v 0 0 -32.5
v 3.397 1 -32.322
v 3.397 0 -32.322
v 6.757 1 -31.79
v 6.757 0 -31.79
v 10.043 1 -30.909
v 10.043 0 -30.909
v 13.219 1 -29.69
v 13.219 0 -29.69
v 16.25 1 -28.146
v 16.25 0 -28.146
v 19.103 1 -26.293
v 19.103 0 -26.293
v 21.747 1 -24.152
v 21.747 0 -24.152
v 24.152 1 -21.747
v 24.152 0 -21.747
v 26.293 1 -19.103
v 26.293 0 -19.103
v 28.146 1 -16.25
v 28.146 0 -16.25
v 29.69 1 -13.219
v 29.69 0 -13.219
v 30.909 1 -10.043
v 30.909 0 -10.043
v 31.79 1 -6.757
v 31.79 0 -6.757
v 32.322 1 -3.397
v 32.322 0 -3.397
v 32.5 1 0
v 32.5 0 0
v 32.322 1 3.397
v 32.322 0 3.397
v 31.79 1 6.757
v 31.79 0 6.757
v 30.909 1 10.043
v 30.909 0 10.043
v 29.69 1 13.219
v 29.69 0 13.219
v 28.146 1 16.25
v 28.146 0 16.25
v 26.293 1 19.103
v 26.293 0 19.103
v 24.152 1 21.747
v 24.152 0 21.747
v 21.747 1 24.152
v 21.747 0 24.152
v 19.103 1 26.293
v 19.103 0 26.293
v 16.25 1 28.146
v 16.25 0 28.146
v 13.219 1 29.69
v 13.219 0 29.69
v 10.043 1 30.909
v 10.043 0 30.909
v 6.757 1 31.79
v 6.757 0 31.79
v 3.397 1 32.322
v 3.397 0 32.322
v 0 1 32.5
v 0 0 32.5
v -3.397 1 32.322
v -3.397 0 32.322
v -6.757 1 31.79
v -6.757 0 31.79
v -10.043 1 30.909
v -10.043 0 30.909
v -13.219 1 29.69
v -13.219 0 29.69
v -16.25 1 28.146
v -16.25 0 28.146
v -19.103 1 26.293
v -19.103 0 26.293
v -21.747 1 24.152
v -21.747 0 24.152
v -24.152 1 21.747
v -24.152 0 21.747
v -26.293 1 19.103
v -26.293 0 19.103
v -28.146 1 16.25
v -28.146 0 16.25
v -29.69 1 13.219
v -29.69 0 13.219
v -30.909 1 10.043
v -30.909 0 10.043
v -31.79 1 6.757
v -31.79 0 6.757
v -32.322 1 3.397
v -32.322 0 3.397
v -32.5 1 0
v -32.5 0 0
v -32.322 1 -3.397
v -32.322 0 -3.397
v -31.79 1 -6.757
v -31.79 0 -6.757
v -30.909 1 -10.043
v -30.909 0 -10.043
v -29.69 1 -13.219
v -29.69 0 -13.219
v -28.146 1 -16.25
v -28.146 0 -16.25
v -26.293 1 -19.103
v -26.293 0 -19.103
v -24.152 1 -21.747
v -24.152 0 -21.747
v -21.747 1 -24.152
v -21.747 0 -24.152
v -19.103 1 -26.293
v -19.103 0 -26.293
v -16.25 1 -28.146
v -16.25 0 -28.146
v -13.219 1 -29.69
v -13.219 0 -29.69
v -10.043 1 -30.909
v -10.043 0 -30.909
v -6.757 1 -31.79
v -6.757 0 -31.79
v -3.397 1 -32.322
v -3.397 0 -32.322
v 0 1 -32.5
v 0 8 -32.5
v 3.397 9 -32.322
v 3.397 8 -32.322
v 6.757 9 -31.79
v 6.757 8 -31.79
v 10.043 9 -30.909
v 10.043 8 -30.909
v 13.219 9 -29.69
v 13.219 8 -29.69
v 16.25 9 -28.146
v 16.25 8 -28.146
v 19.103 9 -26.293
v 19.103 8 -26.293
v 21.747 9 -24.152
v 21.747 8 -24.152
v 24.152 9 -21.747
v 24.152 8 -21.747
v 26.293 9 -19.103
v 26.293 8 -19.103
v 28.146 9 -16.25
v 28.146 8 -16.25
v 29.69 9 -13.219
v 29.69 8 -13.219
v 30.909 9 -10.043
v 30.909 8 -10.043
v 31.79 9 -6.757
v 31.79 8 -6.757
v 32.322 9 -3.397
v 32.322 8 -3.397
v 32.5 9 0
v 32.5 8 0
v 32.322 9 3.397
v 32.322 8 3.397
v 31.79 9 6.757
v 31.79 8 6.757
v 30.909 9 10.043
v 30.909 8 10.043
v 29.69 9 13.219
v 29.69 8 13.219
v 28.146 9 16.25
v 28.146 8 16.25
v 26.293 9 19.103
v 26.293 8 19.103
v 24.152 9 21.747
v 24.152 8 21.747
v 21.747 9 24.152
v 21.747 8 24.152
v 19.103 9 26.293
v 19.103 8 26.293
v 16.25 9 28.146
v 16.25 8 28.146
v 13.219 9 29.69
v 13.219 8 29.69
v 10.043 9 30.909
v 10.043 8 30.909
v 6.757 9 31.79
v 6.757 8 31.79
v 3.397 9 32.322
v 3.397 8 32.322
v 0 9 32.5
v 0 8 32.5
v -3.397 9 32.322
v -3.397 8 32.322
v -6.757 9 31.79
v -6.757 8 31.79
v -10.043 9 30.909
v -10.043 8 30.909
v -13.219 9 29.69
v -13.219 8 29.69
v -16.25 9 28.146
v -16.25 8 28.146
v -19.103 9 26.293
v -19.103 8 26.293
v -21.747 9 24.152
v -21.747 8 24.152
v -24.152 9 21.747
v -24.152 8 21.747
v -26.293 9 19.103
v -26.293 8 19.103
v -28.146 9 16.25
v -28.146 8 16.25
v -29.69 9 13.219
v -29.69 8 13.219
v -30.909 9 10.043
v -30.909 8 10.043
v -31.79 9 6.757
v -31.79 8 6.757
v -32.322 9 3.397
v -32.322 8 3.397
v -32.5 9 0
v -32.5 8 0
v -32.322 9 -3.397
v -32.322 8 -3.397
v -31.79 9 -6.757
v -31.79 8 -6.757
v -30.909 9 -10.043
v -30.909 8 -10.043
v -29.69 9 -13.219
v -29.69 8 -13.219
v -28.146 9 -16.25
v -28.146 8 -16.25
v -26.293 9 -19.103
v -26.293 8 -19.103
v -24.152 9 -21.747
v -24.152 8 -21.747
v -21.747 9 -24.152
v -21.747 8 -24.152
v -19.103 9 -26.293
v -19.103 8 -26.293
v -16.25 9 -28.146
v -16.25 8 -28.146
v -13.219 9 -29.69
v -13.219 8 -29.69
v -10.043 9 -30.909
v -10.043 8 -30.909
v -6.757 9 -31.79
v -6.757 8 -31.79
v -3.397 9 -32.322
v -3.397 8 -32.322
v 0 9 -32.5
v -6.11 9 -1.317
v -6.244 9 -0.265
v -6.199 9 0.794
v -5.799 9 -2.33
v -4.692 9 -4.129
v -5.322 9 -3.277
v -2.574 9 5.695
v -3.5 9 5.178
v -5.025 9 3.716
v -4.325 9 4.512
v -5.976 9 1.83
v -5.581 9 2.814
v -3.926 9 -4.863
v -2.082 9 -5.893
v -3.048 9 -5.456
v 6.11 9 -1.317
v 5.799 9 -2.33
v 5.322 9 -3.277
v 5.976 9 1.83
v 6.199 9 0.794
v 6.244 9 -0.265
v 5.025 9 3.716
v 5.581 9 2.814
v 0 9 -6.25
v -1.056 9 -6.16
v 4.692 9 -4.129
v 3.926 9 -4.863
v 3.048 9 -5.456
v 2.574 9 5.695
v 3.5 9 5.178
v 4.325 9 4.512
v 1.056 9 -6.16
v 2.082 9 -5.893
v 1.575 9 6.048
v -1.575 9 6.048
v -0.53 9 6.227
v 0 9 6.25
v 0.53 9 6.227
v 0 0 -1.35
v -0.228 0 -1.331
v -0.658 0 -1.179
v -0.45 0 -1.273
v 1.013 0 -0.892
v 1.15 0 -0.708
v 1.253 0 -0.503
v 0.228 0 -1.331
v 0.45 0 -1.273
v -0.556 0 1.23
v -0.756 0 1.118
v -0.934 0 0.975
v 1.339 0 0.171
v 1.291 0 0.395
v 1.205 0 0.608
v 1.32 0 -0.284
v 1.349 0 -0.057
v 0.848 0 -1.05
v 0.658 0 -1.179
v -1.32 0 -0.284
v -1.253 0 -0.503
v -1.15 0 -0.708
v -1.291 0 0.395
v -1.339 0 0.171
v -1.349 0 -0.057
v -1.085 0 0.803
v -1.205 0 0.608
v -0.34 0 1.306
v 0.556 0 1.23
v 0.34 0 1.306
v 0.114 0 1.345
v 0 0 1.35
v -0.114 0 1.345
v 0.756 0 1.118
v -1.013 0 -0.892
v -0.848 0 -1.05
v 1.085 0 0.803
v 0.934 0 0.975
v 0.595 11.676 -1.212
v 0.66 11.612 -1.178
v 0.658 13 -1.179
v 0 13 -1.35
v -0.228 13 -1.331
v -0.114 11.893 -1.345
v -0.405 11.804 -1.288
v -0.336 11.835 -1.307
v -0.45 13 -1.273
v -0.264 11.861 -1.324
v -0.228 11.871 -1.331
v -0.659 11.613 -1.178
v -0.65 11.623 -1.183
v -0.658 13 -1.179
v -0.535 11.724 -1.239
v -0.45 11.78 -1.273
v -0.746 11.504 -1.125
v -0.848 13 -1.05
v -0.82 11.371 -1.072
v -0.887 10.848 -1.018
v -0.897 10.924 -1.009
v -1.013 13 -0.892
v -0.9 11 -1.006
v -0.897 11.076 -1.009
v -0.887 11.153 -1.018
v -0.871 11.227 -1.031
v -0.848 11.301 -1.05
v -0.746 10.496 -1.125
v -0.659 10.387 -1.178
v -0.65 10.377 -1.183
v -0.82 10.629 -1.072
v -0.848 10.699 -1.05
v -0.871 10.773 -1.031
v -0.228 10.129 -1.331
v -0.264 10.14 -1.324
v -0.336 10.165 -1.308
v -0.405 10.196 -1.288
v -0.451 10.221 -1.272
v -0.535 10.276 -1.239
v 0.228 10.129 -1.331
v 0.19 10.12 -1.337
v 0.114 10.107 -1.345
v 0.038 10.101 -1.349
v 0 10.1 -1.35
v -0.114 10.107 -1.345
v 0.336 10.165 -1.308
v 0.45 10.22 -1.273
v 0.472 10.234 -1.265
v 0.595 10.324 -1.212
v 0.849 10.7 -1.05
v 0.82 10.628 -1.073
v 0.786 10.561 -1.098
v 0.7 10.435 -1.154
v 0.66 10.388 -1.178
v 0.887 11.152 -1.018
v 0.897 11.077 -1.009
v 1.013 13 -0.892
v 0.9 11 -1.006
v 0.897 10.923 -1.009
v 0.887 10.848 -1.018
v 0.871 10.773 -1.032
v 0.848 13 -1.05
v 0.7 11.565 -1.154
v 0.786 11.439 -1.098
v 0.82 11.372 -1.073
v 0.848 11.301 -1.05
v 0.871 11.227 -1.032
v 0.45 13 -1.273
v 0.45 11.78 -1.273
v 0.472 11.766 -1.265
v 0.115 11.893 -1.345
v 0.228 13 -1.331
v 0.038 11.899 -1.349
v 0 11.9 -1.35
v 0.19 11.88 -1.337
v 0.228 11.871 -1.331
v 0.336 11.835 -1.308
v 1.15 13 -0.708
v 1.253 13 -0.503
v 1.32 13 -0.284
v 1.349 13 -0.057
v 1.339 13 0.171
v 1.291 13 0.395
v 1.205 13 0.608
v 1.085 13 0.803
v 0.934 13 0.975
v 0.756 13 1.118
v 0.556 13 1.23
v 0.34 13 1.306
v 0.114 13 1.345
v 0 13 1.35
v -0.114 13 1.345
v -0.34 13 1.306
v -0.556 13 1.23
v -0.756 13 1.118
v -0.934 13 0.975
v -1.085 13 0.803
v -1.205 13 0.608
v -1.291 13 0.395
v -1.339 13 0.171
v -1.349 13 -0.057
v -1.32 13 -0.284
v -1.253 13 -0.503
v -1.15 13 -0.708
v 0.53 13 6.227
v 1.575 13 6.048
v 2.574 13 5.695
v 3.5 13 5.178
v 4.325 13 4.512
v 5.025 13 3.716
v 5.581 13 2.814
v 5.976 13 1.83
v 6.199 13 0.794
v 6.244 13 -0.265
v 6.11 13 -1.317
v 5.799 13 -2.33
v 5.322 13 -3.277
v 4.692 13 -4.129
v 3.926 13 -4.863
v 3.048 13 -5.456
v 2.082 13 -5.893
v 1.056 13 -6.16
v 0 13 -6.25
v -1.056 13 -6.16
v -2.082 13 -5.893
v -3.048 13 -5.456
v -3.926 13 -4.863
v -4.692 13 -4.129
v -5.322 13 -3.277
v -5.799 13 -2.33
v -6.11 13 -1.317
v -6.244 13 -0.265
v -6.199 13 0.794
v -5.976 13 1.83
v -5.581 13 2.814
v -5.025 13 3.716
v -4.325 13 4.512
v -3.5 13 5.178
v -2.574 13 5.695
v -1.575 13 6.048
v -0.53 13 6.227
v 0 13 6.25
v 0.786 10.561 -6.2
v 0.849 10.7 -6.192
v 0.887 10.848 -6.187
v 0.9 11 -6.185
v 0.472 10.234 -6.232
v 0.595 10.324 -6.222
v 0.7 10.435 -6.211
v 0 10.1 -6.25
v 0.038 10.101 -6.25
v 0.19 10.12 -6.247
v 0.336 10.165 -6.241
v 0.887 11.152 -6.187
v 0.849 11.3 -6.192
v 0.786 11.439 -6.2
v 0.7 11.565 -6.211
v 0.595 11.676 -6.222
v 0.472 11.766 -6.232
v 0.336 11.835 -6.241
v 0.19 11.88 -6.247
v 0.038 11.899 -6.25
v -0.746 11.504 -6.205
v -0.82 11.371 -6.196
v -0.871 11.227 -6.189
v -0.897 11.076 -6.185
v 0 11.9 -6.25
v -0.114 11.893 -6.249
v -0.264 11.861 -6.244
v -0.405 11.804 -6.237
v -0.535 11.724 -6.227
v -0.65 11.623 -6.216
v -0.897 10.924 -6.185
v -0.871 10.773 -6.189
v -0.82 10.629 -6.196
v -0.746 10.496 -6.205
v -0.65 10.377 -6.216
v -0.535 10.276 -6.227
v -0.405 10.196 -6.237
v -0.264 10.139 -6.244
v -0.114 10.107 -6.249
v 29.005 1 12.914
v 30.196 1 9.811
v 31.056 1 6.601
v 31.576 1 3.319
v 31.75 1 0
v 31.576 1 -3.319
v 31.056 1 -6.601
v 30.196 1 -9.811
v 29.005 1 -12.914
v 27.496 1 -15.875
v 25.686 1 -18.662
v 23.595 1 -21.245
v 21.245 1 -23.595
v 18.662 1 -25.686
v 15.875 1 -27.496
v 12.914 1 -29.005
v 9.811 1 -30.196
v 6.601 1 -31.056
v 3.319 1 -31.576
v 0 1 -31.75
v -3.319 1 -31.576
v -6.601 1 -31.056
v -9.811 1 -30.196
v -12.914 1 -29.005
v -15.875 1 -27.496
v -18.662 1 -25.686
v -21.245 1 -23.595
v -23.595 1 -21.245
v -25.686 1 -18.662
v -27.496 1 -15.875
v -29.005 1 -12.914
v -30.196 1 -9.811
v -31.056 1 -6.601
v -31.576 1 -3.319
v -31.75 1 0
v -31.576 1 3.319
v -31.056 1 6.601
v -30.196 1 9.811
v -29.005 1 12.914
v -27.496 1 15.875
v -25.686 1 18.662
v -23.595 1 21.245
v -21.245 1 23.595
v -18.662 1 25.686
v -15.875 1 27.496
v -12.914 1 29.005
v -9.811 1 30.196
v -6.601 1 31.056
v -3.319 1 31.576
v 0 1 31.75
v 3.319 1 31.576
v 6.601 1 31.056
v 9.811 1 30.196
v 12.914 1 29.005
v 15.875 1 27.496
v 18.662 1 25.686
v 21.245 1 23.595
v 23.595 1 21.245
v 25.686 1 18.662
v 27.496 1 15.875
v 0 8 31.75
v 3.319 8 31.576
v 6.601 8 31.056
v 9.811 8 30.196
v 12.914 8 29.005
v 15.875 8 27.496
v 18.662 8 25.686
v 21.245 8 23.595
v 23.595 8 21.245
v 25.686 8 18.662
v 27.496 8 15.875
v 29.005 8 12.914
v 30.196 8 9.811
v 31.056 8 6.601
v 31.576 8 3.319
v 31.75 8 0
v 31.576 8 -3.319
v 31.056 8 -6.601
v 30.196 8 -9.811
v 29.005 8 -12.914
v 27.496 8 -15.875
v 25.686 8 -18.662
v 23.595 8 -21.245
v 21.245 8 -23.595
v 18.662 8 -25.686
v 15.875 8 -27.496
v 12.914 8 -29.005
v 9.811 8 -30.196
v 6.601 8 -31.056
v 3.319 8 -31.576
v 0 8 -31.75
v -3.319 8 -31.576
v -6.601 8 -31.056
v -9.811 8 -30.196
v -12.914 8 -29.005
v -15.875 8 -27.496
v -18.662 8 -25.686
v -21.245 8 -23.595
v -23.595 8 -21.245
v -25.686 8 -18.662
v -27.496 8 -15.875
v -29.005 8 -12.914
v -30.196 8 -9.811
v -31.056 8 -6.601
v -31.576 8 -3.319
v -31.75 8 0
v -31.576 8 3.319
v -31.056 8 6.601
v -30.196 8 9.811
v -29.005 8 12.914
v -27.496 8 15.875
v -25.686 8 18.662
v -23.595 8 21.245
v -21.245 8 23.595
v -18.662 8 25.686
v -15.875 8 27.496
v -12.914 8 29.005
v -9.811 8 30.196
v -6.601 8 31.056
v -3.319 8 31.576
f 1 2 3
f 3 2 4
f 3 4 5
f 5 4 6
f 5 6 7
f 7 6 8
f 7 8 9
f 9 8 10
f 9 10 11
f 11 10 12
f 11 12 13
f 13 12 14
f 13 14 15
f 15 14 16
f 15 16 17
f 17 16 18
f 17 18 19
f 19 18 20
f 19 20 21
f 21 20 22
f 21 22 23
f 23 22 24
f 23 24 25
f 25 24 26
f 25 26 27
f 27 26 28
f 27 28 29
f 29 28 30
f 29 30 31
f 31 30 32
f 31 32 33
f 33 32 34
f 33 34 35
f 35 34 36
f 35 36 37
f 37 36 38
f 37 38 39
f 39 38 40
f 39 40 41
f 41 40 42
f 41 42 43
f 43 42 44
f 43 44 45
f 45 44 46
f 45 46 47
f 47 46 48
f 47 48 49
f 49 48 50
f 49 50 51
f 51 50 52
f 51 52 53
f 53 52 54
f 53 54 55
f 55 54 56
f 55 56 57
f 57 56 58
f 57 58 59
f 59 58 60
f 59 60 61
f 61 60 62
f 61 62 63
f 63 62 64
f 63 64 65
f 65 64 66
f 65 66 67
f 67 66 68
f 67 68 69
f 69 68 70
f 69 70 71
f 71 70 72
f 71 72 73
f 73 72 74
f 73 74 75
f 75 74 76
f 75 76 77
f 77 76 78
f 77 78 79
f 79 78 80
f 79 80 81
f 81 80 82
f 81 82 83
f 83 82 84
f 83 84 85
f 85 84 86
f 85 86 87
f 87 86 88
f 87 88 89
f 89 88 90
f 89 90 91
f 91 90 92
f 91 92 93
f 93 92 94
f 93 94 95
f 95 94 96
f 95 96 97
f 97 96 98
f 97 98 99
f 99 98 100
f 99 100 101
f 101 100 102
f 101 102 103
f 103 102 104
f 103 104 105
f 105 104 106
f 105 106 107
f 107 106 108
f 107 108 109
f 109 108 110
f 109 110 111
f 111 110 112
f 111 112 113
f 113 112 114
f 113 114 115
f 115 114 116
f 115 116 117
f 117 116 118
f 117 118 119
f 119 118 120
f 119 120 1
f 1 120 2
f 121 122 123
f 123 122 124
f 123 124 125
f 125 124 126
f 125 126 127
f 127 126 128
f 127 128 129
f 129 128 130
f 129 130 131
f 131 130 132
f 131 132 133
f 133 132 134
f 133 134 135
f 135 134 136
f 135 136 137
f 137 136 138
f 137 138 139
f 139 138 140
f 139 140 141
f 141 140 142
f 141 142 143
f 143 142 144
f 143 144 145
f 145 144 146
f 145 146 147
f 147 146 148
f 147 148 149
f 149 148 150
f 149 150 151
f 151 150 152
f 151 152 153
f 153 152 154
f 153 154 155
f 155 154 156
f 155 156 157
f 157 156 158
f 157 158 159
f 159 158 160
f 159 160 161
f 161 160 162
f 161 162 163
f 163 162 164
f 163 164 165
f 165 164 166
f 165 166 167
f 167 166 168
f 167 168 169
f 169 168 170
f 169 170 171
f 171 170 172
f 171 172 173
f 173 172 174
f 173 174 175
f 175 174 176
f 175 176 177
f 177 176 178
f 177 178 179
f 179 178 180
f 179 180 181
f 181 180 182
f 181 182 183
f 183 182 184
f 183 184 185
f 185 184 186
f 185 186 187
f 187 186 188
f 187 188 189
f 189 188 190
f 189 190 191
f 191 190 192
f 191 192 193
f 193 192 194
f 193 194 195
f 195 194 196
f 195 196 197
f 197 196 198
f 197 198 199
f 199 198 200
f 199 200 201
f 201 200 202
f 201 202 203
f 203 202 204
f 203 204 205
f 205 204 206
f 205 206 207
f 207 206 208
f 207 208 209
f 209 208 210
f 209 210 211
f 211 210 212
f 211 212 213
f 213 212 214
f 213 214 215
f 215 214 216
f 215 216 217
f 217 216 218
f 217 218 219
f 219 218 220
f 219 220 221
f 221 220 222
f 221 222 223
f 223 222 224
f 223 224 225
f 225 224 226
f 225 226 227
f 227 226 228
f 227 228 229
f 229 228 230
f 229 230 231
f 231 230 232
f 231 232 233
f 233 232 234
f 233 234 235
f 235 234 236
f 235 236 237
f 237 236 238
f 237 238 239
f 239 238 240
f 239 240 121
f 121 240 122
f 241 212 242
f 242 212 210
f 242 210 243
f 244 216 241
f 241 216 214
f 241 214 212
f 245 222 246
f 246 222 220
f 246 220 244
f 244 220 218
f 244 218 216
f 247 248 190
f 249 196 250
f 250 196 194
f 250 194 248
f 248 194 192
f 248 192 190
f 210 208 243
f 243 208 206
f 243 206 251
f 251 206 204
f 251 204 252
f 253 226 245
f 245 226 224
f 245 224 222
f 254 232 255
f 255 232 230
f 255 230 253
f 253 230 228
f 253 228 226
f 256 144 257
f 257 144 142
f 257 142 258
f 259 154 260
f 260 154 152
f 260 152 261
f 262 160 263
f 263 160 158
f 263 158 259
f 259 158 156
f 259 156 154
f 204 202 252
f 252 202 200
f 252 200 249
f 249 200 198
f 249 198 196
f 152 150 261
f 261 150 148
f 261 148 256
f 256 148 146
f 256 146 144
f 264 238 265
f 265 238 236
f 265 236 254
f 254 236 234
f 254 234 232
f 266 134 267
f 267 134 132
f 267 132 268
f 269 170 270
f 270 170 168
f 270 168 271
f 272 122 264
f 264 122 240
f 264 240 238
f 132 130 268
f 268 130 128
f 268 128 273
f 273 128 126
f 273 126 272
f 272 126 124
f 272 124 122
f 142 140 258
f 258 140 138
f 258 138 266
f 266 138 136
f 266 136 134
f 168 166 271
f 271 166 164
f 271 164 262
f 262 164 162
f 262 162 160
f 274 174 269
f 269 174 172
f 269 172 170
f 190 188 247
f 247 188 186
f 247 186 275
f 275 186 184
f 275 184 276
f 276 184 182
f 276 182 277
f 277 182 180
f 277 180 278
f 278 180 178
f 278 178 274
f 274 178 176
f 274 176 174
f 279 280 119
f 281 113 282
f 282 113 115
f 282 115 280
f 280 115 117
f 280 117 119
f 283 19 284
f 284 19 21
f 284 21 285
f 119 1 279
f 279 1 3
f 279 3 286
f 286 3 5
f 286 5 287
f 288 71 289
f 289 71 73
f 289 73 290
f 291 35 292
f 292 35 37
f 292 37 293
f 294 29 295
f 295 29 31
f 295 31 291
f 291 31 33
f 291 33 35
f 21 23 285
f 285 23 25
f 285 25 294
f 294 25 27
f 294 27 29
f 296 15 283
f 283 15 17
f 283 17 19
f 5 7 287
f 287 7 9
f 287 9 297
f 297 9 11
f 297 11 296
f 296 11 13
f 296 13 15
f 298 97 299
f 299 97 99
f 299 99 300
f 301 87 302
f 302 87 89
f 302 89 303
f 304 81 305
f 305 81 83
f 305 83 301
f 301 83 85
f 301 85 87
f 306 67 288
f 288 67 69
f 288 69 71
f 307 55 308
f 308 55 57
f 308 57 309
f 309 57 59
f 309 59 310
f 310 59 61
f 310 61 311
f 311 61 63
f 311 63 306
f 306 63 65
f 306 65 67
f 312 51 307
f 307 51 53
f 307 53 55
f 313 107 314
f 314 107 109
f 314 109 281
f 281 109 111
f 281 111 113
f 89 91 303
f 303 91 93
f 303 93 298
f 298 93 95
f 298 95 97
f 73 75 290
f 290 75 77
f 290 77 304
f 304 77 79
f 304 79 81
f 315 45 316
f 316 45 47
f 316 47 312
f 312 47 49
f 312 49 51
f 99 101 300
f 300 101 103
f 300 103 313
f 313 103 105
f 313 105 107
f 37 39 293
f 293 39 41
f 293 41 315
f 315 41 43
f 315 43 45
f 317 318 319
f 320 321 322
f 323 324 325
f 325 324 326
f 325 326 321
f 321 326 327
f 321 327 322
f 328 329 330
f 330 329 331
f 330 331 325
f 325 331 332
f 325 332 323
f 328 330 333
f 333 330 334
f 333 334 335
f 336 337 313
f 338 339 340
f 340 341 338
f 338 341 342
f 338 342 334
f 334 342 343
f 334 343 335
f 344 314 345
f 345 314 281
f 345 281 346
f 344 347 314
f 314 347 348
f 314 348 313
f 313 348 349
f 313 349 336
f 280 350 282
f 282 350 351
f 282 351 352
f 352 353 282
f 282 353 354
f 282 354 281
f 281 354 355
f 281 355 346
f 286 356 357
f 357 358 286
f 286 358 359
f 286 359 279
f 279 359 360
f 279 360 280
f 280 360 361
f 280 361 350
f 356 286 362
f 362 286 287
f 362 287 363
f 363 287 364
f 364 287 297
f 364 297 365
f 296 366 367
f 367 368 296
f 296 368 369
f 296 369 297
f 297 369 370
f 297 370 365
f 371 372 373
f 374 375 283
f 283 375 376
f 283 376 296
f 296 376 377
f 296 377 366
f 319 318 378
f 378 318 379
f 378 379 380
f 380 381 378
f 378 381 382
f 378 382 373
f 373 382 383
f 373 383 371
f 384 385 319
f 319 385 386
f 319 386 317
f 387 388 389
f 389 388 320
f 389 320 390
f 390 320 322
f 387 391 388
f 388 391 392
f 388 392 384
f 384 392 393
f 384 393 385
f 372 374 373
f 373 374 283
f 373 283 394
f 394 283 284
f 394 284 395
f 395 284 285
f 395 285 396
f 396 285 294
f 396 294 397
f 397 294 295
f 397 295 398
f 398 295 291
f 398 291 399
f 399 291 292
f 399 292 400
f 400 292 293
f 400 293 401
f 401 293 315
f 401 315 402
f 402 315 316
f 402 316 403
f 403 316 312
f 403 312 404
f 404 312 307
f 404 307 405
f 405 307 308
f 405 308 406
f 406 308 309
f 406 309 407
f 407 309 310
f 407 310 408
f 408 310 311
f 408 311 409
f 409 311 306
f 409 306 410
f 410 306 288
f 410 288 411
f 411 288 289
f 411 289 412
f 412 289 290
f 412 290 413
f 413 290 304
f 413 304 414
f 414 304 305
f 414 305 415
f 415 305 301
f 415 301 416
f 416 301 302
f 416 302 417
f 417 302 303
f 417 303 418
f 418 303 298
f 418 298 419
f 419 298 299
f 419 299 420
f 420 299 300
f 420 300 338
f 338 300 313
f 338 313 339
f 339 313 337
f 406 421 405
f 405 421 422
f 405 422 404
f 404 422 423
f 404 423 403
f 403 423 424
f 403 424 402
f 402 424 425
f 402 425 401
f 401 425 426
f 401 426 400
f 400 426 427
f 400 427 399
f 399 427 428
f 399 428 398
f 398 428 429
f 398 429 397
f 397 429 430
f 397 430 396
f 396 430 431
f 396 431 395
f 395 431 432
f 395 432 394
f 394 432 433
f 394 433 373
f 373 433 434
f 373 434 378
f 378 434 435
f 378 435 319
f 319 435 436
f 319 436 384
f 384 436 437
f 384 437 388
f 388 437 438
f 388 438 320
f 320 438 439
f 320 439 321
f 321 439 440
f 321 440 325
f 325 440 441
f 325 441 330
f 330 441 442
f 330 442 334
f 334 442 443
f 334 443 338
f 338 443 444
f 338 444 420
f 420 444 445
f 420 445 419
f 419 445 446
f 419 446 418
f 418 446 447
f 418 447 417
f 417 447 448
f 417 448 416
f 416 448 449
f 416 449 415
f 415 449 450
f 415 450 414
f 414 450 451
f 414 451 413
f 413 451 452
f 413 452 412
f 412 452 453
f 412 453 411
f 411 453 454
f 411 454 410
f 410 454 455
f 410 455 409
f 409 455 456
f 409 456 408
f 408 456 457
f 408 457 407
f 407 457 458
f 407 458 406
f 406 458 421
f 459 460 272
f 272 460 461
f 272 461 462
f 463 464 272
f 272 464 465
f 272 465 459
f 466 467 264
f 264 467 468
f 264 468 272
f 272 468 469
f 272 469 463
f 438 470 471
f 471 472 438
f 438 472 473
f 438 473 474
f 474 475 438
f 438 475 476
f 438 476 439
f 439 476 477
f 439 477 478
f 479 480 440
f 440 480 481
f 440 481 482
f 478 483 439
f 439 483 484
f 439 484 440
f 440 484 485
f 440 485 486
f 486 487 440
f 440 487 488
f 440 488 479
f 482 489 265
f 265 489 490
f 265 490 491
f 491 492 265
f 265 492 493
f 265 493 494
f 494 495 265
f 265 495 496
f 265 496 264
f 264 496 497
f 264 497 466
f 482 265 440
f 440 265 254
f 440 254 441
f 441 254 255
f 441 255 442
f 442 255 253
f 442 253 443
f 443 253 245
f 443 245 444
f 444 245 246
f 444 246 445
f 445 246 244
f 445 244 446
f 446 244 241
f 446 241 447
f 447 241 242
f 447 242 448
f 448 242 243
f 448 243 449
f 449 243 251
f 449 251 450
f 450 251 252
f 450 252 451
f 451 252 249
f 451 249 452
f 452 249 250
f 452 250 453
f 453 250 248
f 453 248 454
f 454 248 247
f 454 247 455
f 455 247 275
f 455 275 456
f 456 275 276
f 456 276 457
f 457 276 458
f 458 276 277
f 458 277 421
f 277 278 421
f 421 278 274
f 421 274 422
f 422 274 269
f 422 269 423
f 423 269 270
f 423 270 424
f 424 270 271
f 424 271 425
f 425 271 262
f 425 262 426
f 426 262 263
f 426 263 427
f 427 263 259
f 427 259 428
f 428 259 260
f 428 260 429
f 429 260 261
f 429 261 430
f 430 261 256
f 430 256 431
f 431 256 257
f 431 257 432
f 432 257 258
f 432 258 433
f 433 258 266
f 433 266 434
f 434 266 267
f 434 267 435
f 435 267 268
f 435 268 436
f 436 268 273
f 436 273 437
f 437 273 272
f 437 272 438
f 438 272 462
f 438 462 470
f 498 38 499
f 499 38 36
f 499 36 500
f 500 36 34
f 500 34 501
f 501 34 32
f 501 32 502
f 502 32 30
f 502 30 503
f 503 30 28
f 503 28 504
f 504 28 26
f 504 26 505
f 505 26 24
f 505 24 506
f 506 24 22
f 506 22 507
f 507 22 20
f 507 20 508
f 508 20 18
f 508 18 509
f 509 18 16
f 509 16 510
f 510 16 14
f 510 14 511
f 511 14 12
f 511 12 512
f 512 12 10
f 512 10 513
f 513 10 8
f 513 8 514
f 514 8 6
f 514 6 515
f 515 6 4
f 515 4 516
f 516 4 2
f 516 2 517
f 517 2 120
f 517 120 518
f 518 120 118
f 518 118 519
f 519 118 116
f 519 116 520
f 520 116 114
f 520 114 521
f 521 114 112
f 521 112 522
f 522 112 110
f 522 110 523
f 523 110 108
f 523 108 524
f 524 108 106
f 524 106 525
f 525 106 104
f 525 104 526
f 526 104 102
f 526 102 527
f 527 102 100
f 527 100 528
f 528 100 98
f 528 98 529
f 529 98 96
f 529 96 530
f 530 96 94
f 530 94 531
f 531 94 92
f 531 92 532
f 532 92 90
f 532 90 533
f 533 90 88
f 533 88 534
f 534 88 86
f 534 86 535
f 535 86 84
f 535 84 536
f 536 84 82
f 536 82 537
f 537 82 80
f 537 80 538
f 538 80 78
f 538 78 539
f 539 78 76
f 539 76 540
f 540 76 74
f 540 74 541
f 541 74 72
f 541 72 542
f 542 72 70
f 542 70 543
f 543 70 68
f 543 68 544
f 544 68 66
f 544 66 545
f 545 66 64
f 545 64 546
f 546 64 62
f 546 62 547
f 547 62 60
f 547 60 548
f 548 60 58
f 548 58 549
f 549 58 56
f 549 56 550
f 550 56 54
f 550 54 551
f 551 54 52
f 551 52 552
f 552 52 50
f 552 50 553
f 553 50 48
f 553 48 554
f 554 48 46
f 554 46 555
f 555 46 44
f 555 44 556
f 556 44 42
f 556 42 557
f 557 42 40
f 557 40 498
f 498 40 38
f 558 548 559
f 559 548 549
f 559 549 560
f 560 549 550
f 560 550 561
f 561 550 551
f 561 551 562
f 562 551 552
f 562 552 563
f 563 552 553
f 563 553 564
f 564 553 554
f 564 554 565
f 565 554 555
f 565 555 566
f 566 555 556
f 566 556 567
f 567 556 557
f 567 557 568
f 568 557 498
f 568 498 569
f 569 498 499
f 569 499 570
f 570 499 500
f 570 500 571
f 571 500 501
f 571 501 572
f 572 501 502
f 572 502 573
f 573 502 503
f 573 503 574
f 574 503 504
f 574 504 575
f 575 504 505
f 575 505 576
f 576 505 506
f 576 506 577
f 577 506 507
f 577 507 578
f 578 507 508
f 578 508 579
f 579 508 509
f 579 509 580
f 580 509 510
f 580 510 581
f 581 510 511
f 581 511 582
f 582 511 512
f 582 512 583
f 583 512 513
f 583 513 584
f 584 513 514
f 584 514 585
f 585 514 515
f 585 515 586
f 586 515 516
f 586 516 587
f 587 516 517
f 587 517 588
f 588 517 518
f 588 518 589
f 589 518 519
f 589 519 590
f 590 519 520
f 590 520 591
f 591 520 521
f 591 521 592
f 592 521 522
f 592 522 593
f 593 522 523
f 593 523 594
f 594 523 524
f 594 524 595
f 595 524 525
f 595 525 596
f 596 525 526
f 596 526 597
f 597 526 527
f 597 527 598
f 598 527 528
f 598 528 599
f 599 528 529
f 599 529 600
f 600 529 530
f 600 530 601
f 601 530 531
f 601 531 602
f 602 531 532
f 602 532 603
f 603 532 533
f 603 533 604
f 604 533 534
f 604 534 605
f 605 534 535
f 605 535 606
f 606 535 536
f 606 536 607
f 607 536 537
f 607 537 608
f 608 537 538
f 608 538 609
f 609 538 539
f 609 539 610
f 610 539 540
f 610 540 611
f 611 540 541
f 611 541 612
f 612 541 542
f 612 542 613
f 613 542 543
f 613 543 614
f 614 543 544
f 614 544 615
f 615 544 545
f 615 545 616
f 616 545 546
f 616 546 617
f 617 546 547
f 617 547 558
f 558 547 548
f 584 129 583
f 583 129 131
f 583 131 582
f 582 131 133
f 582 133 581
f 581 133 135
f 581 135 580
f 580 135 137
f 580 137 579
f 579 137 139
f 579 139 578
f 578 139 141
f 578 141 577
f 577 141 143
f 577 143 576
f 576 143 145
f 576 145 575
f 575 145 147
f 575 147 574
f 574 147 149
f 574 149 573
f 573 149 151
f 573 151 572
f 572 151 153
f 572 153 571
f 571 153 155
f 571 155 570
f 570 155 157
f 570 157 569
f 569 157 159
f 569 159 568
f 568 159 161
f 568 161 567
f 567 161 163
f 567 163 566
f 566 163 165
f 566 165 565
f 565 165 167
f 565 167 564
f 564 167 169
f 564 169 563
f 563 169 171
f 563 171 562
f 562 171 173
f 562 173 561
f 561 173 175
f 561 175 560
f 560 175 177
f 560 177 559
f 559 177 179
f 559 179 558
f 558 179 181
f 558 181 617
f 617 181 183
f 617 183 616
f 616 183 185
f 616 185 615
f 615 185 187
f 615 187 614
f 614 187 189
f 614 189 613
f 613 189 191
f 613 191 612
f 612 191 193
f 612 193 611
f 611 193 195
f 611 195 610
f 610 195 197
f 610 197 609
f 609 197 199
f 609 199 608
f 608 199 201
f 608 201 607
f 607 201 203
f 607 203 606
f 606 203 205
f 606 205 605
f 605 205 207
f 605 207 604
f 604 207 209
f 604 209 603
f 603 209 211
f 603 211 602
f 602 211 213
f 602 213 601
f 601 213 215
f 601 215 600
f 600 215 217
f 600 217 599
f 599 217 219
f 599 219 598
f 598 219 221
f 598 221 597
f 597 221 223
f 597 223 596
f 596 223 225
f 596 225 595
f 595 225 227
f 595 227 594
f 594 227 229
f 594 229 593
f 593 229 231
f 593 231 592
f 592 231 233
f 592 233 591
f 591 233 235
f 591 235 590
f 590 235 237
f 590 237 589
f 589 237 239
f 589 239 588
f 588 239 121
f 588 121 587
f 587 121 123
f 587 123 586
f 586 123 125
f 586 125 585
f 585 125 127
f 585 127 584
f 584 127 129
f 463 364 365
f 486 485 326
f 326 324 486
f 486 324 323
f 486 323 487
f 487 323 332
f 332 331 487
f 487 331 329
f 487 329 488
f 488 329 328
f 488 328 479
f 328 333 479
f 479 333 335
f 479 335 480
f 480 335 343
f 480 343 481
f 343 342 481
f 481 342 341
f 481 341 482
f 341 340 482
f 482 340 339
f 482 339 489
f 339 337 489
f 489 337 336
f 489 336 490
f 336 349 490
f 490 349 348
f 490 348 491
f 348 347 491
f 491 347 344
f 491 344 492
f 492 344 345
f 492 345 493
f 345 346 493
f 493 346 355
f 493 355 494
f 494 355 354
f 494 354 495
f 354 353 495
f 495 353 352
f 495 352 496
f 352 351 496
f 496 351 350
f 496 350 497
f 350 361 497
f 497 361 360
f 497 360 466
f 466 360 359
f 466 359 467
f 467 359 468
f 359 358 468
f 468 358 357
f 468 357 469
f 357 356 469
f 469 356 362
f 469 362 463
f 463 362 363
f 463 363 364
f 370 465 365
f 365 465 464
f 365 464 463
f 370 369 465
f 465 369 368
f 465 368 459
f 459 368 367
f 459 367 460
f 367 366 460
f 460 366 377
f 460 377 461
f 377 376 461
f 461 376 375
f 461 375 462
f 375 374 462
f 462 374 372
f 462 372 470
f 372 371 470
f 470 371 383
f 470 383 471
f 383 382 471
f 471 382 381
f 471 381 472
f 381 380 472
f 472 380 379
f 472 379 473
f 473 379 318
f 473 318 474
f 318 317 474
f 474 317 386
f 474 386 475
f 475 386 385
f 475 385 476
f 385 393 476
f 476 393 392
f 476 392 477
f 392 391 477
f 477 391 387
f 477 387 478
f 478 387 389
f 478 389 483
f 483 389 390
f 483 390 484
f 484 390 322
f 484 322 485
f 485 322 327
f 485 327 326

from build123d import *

# Parameters (mm, degrees)
SKETCH1_R           = 32.5
SKETCH1_R_2         = 1.35
BOSS_EXTRUDE1_DEPTH = 9
BOSS_EXTRUDE2_START = 9
SKETCH1_3_R         = 6.25
SKETCH1_3_R_2       = 1.35
BOSS_EXTRUDE2_DEPTH = 4
SKETCH2_W           = 0.75
SKETCH2_H           = 7
SKETCH3_R           = 0.9
CUT_EXTRUDE1_DEPTH  = 10


with BuildPart() as part:
    # Sketch1 → Boss-Extrude1 (new body)
    with BuildSketch(Plane(origin=(0, 0, 0), x_dir=(1, 0, 0), z_dir=(0, 1, 0))):
        with Locations(Location((0, 0, 0), (0, 0, 270))):
            Circle(SKETCH1_R)
        with Locations(Location((0, 0, 0), (0, 0, 270))):
            Circle(SKETCH1_R_2, mode=Mode.SUBTRACT)
    extrude(amount=BOSS_EXTRUDE1_DEPTH)

    # Sketch1<3> → Boss-Extrude2 (add)
    with BuildSketch(Plane(origin=(0, 0, 0), x_dir=(1, 0, 0), z_dir=(0, 1, 0)).offset(BOSS_EXTRUDE2_START)):
        with Locations(Location((0, 0, 0), (0, 0, 270))):
            Circle(SKETCH1_3_R)
        with Locations(Location((0, 0, 0), (0, 0, 270))):
            Circle(SKETCH1_3_R_2, mode=Mode.SUBTRACT)
    extrude(amount=BOSS_EXTRUDE2_DEPTH)

    # Sketch2 → Cut-Revolve1 (revolve, cut)
    with BuildSketch(Plane.XY, mode=Mode.PRIVATE) as cut_revolve1_sk:
        with Locations((32.125, 4.5)):
            Rectangle(SKETCH2_W, SKETCH2_H)
    revolve(cut_revolve1_sk.sketch.rotate(Axis((0, 9, 0), (0, -1, 0)), 90), axis=Axis((0, 9, 0), (0, -1, 0)), mode=Mode.SUBTRACT)

    # Sketch3 → Cut-Extrude1 (cut)
    with BuildSketch(Plane.XY):
        with Locations(Location((0, 11, 0), (0, 0, 90))):
            Circle(SKETCH3_R)
    extrude(amount=-CUT_EXTRUDE1_DEPTH, mode=Mode.SUBTRACT)


solid = part.part
